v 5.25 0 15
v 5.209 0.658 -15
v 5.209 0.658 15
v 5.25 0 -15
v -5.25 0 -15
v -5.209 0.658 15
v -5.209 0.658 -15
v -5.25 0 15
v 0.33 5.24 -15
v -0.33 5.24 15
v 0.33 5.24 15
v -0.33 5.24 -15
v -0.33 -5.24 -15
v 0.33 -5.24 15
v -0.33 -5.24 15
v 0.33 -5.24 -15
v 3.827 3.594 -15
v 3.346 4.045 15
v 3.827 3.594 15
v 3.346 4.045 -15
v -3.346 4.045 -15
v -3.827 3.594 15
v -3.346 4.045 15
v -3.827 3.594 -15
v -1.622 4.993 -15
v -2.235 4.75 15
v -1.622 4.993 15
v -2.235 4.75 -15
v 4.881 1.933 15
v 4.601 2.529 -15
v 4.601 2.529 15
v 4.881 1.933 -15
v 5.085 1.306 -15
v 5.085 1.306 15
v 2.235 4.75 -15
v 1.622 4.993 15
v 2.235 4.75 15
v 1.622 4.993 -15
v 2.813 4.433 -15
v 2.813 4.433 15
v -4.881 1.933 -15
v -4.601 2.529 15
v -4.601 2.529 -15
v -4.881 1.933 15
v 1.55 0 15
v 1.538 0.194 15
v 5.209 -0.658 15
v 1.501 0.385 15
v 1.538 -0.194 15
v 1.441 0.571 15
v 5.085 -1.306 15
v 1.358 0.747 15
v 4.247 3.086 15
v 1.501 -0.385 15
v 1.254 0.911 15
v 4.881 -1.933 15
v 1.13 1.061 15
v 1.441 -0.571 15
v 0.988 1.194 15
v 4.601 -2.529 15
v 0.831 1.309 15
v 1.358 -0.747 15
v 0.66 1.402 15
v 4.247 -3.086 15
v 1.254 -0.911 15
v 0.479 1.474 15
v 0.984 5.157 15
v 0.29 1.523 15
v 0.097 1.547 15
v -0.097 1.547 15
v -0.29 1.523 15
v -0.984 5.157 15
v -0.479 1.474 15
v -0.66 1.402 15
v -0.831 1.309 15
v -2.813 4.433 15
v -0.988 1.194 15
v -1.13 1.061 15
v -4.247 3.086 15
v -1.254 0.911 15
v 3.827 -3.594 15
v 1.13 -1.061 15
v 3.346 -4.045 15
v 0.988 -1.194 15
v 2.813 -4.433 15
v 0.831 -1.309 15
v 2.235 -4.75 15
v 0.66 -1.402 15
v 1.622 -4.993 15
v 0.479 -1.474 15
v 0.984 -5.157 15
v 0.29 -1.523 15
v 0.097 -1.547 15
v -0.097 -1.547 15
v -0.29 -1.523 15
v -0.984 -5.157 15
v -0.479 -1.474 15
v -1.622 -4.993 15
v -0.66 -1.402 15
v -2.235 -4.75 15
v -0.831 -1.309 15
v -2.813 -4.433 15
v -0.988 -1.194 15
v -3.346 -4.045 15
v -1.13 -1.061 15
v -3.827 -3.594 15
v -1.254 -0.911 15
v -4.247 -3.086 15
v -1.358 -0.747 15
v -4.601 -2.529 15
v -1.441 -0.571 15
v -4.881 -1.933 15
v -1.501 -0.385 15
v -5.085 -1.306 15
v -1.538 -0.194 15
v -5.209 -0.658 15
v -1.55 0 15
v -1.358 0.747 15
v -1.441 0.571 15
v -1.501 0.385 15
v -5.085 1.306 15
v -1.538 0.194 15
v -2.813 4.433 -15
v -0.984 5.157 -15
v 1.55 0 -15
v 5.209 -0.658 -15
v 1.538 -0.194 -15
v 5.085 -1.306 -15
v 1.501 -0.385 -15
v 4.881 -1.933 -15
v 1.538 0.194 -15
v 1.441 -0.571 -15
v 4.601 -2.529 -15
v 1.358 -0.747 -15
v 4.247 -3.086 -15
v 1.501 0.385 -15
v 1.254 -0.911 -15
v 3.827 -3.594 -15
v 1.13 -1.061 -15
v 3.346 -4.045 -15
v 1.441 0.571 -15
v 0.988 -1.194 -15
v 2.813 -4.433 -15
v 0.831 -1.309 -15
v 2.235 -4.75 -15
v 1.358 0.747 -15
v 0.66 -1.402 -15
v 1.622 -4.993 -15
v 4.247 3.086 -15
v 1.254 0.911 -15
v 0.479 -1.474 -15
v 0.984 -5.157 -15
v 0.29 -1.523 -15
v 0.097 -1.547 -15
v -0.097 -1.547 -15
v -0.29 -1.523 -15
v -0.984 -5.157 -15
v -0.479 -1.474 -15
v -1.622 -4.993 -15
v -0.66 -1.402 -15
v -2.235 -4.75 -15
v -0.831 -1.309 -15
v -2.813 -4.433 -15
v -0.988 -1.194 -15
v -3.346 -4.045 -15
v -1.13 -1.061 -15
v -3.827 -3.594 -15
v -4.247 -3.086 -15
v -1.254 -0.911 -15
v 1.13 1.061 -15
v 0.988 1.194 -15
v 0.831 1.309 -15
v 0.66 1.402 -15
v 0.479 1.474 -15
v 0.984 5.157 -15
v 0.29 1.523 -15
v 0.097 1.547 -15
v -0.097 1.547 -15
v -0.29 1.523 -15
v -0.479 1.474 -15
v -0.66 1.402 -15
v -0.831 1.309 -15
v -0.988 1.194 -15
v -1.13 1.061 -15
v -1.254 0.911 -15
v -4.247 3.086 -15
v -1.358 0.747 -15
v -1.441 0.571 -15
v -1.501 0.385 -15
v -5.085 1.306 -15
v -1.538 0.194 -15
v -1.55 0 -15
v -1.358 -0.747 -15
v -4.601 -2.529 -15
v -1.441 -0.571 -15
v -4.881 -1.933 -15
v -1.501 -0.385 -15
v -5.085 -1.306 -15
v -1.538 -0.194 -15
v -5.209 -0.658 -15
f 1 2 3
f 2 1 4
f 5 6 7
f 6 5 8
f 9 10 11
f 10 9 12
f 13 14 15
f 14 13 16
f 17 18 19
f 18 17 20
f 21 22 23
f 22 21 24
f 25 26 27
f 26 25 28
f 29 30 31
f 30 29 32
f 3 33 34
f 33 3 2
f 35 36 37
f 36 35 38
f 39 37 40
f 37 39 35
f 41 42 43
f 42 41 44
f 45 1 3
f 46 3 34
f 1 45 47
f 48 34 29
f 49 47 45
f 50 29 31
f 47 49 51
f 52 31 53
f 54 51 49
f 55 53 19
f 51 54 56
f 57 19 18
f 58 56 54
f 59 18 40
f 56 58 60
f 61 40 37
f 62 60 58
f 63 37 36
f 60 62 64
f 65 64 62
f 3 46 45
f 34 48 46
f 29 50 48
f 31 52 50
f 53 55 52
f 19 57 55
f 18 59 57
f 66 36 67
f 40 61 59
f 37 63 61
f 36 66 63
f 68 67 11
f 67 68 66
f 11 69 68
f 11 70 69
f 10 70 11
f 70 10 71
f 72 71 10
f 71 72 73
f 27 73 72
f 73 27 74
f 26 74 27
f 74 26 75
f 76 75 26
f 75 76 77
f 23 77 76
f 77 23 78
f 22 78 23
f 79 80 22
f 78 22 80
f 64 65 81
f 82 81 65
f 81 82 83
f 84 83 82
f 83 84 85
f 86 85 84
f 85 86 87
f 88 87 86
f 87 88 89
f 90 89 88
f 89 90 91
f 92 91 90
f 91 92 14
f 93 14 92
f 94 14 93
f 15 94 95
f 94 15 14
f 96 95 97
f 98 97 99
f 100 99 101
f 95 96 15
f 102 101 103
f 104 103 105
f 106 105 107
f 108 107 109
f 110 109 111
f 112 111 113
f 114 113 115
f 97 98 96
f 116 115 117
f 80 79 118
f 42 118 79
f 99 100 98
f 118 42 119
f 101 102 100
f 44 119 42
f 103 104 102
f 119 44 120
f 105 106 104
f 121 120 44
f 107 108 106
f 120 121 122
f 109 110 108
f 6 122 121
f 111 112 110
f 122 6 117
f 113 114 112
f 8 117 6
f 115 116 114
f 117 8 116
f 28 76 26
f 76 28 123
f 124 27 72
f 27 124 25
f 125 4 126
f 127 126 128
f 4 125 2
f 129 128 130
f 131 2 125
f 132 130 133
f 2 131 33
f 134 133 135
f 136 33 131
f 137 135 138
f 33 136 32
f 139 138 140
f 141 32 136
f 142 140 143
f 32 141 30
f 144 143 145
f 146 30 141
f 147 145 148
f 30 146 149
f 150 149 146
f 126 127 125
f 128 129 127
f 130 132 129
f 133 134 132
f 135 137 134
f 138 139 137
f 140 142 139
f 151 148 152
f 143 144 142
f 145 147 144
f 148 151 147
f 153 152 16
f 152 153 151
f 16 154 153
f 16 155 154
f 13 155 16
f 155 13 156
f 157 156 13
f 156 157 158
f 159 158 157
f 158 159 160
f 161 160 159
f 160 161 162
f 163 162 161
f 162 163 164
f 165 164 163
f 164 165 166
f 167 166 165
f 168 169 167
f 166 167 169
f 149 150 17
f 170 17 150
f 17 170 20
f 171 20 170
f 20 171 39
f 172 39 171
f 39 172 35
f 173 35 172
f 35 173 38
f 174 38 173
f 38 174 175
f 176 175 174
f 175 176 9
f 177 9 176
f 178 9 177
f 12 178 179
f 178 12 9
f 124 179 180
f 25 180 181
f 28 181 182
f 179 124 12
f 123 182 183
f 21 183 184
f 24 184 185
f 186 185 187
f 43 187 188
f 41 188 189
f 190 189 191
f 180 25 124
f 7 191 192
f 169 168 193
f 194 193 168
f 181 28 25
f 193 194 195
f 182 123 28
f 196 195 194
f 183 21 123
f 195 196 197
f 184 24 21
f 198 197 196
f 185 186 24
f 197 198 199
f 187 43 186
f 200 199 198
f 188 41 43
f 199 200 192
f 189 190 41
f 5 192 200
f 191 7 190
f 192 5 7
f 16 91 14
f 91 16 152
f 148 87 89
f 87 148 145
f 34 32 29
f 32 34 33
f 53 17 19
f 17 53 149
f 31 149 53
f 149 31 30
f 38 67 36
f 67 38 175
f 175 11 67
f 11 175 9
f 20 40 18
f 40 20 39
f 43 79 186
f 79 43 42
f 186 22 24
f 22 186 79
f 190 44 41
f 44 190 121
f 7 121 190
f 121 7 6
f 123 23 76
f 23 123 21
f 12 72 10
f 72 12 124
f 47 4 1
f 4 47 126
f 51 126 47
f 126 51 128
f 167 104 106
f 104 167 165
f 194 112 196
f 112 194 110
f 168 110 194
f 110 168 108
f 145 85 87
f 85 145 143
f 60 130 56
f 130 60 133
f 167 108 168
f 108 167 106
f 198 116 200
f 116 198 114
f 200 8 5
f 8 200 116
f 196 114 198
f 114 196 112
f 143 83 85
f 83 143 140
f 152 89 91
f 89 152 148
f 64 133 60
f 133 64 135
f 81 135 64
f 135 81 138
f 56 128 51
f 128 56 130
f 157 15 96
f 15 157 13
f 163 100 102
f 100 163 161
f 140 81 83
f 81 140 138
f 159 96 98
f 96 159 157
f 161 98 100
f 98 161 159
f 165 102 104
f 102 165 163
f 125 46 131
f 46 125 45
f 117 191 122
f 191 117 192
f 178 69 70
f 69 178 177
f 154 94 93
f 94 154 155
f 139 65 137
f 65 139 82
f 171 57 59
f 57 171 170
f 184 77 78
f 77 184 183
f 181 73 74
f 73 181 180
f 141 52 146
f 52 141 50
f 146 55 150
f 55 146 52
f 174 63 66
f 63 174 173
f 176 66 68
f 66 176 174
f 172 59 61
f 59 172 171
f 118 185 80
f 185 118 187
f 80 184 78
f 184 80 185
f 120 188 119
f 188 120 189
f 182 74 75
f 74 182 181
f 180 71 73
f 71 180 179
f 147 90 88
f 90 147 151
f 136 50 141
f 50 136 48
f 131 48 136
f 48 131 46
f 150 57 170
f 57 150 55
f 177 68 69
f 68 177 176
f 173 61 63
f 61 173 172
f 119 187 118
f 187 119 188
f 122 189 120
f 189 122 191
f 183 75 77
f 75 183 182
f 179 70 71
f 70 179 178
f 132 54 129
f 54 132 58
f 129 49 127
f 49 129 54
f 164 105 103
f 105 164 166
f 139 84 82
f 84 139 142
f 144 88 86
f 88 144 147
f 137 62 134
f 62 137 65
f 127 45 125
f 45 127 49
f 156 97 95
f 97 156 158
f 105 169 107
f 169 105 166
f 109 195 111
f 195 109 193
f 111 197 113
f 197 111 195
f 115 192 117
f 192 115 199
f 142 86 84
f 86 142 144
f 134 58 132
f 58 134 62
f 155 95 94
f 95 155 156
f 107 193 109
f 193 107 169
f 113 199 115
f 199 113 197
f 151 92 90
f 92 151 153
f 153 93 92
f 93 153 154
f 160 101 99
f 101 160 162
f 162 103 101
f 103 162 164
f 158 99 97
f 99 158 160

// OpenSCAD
$fn = 50;


difference() {
	union() {
		translate(v = [0, 0, -15.0000000000]) {
			cylinder(h = 30, r = 5.2500000000);
		}
	}
	union() {
		translate(v = [0, 0, -100.0000000000]) {
			cylinder(h = 200, r = 1.5500000000);
		}
	}
}
